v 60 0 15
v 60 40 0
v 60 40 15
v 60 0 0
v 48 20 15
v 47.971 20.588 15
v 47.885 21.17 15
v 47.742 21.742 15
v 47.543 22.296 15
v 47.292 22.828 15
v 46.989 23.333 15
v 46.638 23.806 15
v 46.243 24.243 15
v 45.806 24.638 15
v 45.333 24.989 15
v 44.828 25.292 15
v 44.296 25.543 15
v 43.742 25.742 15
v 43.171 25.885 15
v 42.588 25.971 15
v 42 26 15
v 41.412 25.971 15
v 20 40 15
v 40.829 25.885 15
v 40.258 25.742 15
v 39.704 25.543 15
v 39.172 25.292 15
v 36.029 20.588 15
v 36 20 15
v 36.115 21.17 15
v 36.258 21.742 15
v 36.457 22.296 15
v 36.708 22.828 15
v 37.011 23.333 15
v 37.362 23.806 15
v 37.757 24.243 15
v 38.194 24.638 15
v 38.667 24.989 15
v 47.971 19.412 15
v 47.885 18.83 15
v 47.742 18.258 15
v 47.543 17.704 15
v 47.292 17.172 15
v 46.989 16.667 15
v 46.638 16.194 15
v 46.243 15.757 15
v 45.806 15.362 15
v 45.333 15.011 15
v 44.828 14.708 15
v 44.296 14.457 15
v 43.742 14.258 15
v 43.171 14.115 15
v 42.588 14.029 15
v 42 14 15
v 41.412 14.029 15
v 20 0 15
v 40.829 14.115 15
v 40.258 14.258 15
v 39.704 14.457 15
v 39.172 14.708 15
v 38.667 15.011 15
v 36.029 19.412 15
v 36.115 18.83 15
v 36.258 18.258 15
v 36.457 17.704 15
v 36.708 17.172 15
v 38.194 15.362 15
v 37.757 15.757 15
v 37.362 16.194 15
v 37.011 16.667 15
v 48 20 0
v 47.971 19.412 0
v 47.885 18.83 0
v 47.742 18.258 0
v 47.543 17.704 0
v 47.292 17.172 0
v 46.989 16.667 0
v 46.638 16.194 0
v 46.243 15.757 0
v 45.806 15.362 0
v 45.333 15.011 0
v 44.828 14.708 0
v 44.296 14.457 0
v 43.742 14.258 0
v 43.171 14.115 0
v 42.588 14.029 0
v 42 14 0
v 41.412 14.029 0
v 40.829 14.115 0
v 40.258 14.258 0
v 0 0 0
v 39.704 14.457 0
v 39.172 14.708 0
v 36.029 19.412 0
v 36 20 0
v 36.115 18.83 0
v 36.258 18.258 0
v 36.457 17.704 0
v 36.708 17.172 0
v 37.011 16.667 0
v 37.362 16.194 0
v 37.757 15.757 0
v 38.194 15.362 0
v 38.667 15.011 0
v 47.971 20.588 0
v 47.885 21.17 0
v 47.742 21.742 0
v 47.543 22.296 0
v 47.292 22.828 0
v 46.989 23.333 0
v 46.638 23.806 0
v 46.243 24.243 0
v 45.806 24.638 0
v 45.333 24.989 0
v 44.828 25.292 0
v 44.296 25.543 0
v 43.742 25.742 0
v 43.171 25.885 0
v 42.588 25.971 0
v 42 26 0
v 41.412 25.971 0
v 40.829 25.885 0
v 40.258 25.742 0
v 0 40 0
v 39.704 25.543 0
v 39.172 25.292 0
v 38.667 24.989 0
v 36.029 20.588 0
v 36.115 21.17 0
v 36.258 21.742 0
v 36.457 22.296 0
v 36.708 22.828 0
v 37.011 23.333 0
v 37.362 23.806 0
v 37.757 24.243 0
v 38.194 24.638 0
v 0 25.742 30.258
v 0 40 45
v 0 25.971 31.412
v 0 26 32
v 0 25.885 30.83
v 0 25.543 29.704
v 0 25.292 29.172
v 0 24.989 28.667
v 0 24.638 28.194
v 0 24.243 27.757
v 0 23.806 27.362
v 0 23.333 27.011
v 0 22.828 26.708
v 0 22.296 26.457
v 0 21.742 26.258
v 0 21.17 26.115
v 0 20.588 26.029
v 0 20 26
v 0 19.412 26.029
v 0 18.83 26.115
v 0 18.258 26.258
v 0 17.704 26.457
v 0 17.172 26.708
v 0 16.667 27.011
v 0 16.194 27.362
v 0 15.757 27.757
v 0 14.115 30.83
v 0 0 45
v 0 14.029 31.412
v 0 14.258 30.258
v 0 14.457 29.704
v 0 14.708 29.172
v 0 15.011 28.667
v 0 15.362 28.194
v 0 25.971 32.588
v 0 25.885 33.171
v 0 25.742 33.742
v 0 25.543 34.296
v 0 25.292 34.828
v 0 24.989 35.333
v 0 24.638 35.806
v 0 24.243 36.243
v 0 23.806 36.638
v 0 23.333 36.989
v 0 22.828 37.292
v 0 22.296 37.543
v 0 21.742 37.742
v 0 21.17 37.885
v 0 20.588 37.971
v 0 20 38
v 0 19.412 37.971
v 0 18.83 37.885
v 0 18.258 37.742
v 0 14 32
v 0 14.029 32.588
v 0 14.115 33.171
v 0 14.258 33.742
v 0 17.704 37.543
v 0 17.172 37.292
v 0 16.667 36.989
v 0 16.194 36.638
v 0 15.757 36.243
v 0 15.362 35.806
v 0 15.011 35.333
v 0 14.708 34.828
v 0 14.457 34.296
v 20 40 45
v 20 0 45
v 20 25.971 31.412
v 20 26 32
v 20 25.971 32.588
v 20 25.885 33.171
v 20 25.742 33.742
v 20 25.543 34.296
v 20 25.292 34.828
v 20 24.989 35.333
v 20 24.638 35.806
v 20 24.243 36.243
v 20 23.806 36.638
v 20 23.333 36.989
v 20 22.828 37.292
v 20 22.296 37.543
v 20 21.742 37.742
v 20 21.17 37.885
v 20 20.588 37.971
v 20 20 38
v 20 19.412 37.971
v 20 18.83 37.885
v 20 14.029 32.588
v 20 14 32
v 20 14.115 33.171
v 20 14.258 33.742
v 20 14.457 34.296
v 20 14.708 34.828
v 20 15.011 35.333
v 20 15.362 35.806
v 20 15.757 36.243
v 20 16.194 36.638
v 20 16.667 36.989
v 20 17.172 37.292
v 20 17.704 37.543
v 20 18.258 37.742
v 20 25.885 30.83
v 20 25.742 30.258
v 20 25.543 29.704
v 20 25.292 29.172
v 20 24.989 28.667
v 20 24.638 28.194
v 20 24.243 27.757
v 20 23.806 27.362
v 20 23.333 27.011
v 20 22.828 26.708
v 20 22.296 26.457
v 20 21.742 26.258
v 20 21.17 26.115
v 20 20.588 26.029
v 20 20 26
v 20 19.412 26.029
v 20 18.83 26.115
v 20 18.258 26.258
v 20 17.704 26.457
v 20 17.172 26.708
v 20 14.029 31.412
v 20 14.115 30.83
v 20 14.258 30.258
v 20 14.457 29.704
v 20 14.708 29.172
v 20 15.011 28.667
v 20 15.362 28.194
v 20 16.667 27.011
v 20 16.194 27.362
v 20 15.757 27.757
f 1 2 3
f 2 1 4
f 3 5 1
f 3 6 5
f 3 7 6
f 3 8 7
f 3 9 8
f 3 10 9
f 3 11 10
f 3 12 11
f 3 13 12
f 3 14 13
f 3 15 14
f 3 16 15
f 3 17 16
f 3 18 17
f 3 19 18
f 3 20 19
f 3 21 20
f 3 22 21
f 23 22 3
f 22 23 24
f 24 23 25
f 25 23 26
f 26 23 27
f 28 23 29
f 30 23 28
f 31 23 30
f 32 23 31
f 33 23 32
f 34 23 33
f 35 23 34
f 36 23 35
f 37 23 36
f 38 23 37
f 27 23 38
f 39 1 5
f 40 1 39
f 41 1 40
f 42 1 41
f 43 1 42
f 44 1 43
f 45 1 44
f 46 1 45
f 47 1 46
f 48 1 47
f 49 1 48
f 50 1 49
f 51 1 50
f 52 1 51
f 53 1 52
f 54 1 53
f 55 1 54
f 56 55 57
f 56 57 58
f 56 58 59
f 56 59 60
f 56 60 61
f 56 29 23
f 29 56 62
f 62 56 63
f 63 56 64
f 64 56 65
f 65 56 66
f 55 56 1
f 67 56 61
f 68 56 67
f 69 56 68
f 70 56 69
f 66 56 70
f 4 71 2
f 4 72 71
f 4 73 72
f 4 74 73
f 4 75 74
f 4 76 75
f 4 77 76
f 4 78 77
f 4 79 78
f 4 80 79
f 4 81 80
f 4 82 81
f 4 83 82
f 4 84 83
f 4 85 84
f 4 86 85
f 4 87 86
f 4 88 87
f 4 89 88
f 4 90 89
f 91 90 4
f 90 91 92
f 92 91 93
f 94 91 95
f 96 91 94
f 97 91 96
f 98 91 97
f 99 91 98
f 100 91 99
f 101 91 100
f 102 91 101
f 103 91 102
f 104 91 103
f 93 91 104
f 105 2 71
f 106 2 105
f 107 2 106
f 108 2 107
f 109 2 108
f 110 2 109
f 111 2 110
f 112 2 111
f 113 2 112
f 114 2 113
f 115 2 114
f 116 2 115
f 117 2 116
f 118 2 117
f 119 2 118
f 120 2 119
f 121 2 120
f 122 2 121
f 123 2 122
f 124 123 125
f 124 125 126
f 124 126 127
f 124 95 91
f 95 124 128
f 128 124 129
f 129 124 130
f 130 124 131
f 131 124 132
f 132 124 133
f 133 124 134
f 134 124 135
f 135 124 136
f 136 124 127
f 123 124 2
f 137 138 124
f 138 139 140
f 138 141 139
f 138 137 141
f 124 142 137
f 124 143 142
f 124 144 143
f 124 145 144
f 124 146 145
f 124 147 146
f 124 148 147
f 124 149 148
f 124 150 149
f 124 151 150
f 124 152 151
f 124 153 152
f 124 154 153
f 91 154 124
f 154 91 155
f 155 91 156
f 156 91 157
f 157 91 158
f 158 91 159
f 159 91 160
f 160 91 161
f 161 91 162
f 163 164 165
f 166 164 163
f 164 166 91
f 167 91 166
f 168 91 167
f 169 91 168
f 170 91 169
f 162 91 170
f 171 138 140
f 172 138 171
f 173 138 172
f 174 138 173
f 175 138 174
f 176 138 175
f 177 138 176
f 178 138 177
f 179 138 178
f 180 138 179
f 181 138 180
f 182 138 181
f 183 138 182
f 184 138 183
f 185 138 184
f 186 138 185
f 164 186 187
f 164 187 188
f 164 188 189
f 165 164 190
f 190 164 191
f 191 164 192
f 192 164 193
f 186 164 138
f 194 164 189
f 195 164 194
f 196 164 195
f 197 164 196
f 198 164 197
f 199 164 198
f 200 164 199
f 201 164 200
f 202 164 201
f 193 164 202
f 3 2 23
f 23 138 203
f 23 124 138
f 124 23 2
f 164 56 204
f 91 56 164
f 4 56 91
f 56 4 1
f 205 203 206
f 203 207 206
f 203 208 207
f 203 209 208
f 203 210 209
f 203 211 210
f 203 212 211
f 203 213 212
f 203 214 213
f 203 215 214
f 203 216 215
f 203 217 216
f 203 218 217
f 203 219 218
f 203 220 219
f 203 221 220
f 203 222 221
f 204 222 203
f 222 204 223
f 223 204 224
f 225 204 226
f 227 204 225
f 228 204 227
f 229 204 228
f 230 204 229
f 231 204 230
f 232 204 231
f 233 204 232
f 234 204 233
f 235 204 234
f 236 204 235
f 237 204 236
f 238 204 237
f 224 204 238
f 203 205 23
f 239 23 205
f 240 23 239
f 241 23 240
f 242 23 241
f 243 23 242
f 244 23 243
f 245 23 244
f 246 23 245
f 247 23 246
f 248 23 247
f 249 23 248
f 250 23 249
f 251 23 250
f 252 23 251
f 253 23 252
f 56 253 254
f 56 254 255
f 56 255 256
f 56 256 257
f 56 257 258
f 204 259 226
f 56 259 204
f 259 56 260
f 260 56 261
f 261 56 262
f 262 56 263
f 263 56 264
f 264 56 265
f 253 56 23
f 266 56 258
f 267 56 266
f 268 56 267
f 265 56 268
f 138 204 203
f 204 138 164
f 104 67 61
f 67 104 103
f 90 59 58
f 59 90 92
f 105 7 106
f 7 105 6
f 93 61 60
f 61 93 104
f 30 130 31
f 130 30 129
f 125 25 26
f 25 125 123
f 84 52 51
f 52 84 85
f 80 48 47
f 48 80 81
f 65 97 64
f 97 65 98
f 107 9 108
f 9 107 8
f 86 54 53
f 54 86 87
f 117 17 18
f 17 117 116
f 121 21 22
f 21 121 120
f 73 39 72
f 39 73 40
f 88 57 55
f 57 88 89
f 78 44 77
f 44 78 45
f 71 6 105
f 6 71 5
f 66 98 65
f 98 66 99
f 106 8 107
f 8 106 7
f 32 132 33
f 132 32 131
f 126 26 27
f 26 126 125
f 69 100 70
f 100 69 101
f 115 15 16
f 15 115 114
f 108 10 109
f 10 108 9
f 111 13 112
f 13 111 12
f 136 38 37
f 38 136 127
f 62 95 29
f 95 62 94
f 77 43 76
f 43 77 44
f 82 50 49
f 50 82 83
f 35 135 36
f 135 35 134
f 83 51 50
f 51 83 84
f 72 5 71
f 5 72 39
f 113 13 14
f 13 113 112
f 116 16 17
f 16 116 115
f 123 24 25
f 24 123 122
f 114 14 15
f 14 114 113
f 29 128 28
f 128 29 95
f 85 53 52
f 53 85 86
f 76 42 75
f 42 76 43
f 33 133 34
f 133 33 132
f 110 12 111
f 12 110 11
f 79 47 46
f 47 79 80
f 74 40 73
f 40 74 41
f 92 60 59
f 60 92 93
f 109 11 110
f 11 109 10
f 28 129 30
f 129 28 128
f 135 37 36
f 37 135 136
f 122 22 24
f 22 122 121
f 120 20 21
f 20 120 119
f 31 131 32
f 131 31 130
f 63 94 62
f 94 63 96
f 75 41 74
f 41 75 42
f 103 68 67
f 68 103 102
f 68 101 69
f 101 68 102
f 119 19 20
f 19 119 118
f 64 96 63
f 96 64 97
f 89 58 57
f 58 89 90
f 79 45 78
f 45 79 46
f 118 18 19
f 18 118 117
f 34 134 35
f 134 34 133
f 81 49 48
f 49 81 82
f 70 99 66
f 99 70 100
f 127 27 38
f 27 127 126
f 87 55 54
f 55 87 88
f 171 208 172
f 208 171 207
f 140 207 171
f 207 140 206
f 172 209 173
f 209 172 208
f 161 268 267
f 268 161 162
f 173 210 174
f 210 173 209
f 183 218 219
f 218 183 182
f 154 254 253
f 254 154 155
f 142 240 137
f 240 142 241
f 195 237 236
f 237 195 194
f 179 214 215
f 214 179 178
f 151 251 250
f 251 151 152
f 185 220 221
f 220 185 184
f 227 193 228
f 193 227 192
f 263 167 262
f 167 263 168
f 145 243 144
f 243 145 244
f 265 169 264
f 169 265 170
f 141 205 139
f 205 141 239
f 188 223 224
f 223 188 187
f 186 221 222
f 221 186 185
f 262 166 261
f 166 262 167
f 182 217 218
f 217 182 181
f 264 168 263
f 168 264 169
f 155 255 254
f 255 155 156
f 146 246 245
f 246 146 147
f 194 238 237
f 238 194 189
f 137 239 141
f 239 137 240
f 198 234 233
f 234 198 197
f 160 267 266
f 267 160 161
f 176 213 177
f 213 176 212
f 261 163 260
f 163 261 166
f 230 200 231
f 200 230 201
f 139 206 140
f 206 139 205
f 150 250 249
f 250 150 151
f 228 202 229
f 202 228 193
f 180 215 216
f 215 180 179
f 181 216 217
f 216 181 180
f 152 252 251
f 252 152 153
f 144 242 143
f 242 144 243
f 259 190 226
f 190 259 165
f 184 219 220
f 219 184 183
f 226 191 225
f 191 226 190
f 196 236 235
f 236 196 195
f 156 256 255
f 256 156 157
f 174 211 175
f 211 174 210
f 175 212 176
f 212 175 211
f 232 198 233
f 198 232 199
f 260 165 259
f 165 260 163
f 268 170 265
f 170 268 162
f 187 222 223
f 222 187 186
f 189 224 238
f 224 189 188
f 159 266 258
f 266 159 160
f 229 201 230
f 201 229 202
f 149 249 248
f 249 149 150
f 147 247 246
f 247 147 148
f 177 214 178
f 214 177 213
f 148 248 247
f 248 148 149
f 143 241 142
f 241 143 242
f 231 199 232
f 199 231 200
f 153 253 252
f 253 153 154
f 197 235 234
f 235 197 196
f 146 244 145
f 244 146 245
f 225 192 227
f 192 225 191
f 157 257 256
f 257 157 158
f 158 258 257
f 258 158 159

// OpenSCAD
// L 形孔塊（lhole）— 由 ortho_lib_work/objects.py 產生，請改 objects.py 後重建
// 底座 60×40×15；左邊立板寬 20、高 45；底座右邊有直徑 12 的垂直貫穿孔（圓心 x=42、y=20）；立板有直徑 12 的左右貫穿孔（中心高 32）。
difference() {
  union() {
    translate([0,0,0]) cube([60,40,15]);
    translate([0,0,0]) cube([20,40,45]);
  }
  union() {
    multmatrix([[1,0,0,0],[0,1,0,0],[0,0,1,-1],[0,0,0,1]]) translate([42,20,0]) cylinder(h=17, r=6, $fn=64);
    multmatrix([[0,0,1,-1],[1,0,0,0],[0,1,0,0],[0,0,0,1]]) translate([20,32,0]) cylinder(h=22, r=6, $fn=64);
  }
}
